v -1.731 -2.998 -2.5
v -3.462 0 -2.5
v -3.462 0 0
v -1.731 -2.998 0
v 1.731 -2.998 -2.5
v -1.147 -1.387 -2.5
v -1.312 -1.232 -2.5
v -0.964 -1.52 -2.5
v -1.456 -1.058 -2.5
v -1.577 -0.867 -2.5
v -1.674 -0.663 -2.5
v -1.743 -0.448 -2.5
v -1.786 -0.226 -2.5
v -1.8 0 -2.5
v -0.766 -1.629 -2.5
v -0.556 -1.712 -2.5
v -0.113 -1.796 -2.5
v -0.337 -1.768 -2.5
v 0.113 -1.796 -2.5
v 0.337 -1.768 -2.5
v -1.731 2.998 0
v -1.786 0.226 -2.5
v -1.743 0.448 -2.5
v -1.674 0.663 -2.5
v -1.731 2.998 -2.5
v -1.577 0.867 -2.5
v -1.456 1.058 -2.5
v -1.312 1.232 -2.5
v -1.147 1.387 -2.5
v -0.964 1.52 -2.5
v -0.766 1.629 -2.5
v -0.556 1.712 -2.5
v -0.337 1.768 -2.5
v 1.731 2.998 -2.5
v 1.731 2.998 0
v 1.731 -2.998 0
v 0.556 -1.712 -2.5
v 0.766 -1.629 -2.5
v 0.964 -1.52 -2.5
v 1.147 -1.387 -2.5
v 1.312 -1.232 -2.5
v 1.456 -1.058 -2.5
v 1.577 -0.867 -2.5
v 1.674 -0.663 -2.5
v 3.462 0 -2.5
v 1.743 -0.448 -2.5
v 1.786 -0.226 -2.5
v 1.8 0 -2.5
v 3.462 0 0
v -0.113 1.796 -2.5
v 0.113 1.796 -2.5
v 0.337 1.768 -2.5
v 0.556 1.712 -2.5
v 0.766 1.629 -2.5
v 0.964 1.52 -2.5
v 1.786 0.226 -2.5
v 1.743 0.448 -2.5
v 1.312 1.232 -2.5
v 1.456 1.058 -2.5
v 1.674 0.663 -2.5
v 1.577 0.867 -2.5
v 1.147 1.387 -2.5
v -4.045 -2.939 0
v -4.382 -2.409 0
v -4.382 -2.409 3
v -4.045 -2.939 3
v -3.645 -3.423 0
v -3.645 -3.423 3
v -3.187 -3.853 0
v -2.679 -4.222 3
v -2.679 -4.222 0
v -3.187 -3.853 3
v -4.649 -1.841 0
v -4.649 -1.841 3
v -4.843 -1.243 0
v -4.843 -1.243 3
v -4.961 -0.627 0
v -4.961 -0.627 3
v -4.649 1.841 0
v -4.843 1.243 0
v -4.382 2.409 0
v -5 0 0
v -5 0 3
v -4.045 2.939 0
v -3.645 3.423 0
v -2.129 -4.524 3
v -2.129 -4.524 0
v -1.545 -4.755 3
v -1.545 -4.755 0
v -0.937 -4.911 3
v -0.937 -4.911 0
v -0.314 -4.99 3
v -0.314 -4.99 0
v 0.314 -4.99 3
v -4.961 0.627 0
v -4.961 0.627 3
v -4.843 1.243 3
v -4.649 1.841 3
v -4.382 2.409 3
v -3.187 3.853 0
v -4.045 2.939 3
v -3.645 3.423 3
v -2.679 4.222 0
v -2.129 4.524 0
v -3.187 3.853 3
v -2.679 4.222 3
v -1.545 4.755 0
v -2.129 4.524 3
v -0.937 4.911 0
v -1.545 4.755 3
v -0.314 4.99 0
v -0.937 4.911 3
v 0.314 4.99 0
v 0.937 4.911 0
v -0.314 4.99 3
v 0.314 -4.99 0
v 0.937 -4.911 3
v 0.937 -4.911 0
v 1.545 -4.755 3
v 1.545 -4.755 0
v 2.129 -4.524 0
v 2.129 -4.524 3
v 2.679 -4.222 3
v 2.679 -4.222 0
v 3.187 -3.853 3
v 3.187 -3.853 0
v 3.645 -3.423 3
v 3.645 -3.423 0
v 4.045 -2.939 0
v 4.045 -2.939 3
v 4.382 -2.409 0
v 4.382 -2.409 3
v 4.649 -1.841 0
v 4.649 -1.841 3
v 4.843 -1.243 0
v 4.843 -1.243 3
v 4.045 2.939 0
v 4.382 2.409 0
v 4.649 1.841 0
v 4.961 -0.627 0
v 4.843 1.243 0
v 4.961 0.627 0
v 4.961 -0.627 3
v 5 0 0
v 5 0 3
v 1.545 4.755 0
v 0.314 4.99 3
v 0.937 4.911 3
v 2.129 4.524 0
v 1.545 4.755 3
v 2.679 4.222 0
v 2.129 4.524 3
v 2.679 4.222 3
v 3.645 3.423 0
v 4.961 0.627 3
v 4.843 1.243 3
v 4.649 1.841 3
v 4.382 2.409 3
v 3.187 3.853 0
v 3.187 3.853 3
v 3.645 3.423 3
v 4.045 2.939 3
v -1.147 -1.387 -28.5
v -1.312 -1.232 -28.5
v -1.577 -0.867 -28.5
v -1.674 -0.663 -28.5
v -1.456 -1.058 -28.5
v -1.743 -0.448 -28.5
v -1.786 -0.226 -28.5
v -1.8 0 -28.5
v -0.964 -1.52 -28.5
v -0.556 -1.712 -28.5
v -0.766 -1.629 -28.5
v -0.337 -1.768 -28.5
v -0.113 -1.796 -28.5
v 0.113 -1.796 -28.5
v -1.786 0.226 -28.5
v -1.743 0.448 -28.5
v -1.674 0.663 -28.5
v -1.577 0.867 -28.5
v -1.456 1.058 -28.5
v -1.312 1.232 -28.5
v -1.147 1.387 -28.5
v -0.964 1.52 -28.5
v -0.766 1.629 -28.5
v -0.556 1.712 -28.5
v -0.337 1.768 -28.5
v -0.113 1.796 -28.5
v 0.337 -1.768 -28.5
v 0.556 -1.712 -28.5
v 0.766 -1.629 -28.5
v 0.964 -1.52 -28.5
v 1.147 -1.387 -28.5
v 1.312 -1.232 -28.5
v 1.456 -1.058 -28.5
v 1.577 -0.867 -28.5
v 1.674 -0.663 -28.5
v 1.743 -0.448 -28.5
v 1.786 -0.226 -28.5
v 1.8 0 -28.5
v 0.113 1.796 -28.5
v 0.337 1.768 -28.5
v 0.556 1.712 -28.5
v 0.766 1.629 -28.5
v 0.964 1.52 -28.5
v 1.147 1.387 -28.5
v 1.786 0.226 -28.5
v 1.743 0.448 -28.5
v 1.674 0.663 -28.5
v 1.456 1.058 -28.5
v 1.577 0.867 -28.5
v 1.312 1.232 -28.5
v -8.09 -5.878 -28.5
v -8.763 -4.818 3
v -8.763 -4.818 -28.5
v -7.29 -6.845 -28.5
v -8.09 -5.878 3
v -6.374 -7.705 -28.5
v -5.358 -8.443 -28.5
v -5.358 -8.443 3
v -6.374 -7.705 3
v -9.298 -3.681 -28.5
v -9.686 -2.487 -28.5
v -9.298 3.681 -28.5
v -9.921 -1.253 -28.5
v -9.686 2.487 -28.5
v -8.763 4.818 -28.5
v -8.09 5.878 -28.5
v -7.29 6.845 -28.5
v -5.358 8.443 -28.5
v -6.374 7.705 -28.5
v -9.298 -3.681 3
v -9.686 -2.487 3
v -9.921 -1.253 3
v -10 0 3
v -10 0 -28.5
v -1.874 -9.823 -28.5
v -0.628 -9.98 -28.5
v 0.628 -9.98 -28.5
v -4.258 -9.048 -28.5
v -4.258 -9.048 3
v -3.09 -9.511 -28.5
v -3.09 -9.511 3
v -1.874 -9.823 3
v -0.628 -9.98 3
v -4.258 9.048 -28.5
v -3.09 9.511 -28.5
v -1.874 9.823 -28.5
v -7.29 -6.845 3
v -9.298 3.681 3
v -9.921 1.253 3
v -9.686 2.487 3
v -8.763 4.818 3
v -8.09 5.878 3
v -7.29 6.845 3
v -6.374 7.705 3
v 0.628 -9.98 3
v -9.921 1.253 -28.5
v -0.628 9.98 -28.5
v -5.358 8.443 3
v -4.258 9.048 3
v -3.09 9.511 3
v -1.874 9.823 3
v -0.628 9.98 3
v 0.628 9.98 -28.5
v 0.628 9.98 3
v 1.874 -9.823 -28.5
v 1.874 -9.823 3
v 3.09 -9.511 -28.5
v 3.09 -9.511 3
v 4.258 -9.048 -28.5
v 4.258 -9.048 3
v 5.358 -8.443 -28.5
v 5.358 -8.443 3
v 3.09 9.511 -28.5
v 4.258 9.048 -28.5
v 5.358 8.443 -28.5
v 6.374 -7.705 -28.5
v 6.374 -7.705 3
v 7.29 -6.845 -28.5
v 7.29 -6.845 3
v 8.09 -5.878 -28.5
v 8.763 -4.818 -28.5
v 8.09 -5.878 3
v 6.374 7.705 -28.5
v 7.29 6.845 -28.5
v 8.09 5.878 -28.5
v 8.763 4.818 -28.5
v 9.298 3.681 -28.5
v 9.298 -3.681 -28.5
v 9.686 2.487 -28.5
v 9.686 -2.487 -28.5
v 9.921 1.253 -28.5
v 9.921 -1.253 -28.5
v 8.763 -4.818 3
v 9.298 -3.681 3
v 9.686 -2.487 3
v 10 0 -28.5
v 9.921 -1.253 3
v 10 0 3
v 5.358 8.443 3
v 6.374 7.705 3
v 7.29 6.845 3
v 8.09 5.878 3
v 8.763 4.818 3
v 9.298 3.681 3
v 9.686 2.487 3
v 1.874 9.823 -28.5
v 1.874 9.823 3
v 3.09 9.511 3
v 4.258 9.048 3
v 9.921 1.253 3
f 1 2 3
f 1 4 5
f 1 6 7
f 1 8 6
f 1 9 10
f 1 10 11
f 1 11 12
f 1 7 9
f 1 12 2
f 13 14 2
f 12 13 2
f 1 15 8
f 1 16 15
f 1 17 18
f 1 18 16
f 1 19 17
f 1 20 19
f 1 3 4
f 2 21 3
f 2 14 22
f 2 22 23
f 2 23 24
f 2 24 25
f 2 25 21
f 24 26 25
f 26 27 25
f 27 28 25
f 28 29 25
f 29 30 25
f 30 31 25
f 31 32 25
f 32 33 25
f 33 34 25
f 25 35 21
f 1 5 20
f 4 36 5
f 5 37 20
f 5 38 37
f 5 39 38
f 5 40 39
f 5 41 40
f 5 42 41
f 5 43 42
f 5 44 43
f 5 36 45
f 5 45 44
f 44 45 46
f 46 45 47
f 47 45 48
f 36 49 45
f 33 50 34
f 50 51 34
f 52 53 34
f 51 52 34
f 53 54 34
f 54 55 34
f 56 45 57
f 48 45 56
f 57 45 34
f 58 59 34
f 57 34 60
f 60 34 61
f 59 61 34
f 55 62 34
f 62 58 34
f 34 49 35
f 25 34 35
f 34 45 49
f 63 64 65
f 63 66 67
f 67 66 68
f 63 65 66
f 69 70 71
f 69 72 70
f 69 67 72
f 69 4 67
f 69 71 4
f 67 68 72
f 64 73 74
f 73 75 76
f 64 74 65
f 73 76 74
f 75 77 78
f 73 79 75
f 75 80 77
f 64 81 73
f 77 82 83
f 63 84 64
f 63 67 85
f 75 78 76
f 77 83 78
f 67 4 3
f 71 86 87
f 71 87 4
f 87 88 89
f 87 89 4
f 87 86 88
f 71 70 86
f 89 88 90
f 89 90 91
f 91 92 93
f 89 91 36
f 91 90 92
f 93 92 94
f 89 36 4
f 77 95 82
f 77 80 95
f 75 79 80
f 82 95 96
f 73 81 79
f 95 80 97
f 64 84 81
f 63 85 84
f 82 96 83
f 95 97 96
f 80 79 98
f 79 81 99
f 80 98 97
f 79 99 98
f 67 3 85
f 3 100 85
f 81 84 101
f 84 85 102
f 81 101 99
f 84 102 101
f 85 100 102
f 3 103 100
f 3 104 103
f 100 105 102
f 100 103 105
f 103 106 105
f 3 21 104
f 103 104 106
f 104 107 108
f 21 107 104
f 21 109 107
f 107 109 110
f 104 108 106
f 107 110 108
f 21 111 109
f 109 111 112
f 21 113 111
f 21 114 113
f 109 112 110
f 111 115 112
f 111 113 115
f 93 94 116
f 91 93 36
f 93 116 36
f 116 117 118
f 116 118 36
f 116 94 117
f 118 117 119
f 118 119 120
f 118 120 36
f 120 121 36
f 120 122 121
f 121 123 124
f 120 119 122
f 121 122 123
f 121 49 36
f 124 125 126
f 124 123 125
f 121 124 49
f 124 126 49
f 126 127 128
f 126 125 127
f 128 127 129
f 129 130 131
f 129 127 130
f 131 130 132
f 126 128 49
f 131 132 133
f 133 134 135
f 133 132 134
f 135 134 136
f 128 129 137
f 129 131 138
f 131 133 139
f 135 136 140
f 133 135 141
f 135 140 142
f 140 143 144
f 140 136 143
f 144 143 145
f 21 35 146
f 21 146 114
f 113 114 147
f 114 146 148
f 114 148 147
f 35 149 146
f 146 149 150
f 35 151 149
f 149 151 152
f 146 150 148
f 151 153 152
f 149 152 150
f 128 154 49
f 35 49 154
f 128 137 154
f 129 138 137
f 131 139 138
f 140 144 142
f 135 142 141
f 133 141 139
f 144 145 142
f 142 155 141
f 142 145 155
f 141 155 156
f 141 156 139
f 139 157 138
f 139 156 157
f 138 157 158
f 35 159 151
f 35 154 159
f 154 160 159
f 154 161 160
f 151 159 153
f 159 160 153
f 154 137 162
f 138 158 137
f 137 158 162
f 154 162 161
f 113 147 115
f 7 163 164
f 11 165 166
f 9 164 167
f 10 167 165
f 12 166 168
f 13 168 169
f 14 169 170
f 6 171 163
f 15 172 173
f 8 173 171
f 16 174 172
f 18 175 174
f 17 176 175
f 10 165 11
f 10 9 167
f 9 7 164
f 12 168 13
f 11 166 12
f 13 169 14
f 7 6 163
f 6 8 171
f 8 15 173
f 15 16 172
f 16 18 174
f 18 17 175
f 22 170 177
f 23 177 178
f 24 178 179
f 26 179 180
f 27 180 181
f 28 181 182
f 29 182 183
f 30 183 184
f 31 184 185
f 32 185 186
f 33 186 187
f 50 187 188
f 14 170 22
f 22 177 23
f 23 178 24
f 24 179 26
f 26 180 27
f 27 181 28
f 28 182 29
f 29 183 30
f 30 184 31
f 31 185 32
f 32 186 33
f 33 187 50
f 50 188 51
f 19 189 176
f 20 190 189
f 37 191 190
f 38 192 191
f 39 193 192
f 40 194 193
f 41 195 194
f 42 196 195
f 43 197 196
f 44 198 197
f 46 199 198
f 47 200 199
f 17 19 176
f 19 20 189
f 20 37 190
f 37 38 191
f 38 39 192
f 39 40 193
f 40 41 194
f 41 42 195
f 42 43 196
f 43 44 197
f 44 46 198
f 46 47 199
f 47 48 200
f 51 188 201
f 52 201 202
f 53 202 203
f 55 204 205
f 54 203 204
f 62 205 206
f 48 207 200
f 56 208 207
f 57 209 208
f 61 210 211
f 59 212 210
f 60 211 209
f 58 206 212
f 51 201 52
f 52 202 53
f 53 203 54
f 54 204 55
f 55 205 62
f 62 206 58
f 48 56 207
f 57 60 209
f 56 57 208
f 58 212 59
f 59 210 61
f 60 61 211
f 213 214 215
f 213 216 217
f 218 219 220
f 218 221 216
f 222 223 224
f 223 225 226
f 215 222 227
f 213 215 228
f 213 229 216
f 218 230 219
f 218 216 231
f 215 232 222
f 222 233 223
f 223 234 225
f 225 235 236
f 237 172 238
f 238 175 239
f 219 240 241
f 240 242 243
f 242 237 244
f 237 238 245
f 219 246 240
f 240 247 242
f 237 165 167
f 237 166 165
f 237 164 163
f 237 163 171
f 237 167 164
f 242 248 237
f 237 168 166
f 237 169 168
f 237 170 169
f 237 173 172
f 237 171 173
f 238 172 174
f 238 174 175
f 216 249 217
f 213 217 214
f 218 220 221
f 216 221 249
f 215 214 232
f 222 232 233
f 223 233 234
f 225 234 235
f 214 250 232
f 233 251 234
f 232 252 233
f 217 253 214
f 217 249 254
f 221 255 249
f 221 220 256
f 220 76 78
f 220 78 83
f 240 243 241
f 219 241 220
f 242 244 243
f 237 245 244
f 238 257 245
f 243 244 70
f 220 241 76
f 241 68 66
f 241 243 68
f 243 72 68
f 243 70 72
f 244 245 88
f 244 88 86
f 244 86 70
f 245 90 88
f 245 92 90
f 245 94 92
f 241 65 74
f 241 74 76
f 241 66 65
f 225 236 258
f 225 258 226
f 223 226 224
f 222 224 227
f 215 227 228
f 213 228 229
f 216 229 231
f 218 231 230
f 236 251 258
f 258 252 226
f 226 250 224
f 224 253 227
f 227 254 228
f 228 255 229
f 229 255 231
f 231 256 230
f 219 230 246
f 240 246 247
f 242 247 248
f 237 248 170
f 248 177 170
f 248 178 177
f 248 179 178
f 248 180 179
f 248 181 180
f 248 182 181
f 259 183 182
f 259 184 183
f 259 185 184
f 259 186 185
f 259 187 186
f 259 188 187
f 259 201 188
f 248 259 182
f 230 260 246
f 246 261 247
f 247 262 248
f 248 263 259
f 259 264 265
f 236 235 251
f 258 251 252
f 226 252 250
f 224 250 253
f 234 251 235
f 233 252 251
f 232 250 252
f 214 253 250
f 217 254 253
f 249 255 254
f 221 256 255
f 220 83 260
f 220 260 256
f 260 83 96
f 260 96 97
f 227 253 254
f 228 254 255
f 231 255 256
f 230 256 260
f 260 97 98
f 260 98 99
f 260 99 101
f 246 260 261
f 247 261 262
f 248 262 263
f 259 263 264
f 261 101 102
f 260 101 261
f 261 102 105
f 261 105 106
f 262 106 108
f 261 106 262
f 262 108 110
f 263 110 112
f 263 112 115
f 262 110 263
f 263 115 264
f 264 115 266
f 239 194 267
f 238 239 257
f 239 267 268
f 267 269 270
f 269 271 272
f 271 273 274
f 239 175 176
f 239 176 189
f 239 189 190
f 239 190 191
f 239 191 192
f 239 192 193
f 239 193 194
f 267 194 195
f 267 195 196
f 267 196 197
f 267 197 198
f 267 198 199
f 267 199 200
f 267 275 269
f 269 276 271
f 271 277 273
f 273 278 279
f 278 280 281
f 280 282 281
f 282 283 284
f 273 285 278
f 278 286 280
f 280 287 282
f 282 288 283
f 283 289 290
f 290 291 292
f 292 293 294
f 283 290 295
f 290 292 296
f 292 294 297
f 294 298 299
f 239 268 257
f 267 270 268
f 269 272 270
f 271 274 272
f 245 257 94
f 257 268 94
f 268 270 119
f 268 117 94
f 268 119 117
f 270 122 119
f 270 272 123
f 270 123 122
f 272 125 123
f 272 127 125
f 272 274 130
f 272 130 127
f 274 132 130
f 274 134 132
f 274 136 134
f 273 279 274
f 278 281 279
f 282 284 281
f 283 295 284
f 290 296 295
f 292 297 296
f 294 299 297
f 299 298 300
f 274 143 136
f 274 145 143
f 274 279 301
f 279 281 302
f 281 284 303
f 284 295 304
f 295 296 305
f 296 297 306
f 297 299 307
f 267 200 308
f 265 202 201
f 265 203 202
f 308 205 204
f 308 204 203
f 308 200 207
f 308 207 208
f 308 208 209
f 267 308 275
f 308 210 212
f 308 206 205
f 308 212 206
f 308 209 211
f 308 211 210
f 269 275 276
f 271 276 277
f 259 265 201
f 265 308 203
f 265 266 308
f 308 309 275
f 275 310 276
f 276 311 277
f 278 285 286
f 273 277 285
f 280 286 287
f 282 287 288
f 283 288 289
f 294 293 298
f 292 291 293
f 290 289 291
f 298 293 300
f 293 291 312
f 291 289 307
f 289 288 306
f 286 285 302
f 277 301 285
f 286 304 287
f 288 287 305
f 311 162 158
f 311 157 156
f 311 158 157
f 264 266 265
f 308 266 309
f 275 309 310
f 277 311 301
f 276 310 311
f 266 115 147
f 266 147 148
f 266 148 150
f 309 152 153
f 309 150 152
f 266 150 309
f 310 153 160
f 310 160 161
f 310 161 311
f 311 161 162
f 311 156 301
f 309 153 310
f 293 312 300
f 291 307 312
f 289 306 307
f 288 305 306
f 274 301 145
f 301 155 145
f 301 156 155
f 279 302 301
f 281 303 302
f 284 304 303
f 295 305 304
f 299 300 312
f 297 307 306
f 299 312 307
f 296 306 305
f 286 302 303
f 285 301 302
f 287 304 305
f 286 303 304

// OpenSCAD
$fn = 50;

difference() {
	union() {
		translate(v = [0, 0, -28.5]) {
			cylinder(h = 31.5, r = 10.0);
		}
	}
	union() {
		translate(v = [0, 0, 0]) {
			rotate(a = [0, 0, 0]) {
				difference() {
					union() {
						translate(v = [0, 0, -2.5]) {
							linear_extrude(height = 2.5) {
								polygon(points = [[3.4619999999999997, 0.0], [1.7310000000000003, 2.9981799479017264], [-1.7309999999999992, 2.9981799479017264], [-3.4619999999999997, 4.2397272186481365e-16], [-1.7310000000000014, -2.998179947901726], [1.7309999999999977, -2.9981799479017277]]);
							}
						}
					}
					union();
				}
			}
		}
		#cylinder(h = 3, r = 5.0);
		#translate(v = [0, 0, -100.0]) {
			cylinder(h = 200, r = 1.8);
		}
	}
}
